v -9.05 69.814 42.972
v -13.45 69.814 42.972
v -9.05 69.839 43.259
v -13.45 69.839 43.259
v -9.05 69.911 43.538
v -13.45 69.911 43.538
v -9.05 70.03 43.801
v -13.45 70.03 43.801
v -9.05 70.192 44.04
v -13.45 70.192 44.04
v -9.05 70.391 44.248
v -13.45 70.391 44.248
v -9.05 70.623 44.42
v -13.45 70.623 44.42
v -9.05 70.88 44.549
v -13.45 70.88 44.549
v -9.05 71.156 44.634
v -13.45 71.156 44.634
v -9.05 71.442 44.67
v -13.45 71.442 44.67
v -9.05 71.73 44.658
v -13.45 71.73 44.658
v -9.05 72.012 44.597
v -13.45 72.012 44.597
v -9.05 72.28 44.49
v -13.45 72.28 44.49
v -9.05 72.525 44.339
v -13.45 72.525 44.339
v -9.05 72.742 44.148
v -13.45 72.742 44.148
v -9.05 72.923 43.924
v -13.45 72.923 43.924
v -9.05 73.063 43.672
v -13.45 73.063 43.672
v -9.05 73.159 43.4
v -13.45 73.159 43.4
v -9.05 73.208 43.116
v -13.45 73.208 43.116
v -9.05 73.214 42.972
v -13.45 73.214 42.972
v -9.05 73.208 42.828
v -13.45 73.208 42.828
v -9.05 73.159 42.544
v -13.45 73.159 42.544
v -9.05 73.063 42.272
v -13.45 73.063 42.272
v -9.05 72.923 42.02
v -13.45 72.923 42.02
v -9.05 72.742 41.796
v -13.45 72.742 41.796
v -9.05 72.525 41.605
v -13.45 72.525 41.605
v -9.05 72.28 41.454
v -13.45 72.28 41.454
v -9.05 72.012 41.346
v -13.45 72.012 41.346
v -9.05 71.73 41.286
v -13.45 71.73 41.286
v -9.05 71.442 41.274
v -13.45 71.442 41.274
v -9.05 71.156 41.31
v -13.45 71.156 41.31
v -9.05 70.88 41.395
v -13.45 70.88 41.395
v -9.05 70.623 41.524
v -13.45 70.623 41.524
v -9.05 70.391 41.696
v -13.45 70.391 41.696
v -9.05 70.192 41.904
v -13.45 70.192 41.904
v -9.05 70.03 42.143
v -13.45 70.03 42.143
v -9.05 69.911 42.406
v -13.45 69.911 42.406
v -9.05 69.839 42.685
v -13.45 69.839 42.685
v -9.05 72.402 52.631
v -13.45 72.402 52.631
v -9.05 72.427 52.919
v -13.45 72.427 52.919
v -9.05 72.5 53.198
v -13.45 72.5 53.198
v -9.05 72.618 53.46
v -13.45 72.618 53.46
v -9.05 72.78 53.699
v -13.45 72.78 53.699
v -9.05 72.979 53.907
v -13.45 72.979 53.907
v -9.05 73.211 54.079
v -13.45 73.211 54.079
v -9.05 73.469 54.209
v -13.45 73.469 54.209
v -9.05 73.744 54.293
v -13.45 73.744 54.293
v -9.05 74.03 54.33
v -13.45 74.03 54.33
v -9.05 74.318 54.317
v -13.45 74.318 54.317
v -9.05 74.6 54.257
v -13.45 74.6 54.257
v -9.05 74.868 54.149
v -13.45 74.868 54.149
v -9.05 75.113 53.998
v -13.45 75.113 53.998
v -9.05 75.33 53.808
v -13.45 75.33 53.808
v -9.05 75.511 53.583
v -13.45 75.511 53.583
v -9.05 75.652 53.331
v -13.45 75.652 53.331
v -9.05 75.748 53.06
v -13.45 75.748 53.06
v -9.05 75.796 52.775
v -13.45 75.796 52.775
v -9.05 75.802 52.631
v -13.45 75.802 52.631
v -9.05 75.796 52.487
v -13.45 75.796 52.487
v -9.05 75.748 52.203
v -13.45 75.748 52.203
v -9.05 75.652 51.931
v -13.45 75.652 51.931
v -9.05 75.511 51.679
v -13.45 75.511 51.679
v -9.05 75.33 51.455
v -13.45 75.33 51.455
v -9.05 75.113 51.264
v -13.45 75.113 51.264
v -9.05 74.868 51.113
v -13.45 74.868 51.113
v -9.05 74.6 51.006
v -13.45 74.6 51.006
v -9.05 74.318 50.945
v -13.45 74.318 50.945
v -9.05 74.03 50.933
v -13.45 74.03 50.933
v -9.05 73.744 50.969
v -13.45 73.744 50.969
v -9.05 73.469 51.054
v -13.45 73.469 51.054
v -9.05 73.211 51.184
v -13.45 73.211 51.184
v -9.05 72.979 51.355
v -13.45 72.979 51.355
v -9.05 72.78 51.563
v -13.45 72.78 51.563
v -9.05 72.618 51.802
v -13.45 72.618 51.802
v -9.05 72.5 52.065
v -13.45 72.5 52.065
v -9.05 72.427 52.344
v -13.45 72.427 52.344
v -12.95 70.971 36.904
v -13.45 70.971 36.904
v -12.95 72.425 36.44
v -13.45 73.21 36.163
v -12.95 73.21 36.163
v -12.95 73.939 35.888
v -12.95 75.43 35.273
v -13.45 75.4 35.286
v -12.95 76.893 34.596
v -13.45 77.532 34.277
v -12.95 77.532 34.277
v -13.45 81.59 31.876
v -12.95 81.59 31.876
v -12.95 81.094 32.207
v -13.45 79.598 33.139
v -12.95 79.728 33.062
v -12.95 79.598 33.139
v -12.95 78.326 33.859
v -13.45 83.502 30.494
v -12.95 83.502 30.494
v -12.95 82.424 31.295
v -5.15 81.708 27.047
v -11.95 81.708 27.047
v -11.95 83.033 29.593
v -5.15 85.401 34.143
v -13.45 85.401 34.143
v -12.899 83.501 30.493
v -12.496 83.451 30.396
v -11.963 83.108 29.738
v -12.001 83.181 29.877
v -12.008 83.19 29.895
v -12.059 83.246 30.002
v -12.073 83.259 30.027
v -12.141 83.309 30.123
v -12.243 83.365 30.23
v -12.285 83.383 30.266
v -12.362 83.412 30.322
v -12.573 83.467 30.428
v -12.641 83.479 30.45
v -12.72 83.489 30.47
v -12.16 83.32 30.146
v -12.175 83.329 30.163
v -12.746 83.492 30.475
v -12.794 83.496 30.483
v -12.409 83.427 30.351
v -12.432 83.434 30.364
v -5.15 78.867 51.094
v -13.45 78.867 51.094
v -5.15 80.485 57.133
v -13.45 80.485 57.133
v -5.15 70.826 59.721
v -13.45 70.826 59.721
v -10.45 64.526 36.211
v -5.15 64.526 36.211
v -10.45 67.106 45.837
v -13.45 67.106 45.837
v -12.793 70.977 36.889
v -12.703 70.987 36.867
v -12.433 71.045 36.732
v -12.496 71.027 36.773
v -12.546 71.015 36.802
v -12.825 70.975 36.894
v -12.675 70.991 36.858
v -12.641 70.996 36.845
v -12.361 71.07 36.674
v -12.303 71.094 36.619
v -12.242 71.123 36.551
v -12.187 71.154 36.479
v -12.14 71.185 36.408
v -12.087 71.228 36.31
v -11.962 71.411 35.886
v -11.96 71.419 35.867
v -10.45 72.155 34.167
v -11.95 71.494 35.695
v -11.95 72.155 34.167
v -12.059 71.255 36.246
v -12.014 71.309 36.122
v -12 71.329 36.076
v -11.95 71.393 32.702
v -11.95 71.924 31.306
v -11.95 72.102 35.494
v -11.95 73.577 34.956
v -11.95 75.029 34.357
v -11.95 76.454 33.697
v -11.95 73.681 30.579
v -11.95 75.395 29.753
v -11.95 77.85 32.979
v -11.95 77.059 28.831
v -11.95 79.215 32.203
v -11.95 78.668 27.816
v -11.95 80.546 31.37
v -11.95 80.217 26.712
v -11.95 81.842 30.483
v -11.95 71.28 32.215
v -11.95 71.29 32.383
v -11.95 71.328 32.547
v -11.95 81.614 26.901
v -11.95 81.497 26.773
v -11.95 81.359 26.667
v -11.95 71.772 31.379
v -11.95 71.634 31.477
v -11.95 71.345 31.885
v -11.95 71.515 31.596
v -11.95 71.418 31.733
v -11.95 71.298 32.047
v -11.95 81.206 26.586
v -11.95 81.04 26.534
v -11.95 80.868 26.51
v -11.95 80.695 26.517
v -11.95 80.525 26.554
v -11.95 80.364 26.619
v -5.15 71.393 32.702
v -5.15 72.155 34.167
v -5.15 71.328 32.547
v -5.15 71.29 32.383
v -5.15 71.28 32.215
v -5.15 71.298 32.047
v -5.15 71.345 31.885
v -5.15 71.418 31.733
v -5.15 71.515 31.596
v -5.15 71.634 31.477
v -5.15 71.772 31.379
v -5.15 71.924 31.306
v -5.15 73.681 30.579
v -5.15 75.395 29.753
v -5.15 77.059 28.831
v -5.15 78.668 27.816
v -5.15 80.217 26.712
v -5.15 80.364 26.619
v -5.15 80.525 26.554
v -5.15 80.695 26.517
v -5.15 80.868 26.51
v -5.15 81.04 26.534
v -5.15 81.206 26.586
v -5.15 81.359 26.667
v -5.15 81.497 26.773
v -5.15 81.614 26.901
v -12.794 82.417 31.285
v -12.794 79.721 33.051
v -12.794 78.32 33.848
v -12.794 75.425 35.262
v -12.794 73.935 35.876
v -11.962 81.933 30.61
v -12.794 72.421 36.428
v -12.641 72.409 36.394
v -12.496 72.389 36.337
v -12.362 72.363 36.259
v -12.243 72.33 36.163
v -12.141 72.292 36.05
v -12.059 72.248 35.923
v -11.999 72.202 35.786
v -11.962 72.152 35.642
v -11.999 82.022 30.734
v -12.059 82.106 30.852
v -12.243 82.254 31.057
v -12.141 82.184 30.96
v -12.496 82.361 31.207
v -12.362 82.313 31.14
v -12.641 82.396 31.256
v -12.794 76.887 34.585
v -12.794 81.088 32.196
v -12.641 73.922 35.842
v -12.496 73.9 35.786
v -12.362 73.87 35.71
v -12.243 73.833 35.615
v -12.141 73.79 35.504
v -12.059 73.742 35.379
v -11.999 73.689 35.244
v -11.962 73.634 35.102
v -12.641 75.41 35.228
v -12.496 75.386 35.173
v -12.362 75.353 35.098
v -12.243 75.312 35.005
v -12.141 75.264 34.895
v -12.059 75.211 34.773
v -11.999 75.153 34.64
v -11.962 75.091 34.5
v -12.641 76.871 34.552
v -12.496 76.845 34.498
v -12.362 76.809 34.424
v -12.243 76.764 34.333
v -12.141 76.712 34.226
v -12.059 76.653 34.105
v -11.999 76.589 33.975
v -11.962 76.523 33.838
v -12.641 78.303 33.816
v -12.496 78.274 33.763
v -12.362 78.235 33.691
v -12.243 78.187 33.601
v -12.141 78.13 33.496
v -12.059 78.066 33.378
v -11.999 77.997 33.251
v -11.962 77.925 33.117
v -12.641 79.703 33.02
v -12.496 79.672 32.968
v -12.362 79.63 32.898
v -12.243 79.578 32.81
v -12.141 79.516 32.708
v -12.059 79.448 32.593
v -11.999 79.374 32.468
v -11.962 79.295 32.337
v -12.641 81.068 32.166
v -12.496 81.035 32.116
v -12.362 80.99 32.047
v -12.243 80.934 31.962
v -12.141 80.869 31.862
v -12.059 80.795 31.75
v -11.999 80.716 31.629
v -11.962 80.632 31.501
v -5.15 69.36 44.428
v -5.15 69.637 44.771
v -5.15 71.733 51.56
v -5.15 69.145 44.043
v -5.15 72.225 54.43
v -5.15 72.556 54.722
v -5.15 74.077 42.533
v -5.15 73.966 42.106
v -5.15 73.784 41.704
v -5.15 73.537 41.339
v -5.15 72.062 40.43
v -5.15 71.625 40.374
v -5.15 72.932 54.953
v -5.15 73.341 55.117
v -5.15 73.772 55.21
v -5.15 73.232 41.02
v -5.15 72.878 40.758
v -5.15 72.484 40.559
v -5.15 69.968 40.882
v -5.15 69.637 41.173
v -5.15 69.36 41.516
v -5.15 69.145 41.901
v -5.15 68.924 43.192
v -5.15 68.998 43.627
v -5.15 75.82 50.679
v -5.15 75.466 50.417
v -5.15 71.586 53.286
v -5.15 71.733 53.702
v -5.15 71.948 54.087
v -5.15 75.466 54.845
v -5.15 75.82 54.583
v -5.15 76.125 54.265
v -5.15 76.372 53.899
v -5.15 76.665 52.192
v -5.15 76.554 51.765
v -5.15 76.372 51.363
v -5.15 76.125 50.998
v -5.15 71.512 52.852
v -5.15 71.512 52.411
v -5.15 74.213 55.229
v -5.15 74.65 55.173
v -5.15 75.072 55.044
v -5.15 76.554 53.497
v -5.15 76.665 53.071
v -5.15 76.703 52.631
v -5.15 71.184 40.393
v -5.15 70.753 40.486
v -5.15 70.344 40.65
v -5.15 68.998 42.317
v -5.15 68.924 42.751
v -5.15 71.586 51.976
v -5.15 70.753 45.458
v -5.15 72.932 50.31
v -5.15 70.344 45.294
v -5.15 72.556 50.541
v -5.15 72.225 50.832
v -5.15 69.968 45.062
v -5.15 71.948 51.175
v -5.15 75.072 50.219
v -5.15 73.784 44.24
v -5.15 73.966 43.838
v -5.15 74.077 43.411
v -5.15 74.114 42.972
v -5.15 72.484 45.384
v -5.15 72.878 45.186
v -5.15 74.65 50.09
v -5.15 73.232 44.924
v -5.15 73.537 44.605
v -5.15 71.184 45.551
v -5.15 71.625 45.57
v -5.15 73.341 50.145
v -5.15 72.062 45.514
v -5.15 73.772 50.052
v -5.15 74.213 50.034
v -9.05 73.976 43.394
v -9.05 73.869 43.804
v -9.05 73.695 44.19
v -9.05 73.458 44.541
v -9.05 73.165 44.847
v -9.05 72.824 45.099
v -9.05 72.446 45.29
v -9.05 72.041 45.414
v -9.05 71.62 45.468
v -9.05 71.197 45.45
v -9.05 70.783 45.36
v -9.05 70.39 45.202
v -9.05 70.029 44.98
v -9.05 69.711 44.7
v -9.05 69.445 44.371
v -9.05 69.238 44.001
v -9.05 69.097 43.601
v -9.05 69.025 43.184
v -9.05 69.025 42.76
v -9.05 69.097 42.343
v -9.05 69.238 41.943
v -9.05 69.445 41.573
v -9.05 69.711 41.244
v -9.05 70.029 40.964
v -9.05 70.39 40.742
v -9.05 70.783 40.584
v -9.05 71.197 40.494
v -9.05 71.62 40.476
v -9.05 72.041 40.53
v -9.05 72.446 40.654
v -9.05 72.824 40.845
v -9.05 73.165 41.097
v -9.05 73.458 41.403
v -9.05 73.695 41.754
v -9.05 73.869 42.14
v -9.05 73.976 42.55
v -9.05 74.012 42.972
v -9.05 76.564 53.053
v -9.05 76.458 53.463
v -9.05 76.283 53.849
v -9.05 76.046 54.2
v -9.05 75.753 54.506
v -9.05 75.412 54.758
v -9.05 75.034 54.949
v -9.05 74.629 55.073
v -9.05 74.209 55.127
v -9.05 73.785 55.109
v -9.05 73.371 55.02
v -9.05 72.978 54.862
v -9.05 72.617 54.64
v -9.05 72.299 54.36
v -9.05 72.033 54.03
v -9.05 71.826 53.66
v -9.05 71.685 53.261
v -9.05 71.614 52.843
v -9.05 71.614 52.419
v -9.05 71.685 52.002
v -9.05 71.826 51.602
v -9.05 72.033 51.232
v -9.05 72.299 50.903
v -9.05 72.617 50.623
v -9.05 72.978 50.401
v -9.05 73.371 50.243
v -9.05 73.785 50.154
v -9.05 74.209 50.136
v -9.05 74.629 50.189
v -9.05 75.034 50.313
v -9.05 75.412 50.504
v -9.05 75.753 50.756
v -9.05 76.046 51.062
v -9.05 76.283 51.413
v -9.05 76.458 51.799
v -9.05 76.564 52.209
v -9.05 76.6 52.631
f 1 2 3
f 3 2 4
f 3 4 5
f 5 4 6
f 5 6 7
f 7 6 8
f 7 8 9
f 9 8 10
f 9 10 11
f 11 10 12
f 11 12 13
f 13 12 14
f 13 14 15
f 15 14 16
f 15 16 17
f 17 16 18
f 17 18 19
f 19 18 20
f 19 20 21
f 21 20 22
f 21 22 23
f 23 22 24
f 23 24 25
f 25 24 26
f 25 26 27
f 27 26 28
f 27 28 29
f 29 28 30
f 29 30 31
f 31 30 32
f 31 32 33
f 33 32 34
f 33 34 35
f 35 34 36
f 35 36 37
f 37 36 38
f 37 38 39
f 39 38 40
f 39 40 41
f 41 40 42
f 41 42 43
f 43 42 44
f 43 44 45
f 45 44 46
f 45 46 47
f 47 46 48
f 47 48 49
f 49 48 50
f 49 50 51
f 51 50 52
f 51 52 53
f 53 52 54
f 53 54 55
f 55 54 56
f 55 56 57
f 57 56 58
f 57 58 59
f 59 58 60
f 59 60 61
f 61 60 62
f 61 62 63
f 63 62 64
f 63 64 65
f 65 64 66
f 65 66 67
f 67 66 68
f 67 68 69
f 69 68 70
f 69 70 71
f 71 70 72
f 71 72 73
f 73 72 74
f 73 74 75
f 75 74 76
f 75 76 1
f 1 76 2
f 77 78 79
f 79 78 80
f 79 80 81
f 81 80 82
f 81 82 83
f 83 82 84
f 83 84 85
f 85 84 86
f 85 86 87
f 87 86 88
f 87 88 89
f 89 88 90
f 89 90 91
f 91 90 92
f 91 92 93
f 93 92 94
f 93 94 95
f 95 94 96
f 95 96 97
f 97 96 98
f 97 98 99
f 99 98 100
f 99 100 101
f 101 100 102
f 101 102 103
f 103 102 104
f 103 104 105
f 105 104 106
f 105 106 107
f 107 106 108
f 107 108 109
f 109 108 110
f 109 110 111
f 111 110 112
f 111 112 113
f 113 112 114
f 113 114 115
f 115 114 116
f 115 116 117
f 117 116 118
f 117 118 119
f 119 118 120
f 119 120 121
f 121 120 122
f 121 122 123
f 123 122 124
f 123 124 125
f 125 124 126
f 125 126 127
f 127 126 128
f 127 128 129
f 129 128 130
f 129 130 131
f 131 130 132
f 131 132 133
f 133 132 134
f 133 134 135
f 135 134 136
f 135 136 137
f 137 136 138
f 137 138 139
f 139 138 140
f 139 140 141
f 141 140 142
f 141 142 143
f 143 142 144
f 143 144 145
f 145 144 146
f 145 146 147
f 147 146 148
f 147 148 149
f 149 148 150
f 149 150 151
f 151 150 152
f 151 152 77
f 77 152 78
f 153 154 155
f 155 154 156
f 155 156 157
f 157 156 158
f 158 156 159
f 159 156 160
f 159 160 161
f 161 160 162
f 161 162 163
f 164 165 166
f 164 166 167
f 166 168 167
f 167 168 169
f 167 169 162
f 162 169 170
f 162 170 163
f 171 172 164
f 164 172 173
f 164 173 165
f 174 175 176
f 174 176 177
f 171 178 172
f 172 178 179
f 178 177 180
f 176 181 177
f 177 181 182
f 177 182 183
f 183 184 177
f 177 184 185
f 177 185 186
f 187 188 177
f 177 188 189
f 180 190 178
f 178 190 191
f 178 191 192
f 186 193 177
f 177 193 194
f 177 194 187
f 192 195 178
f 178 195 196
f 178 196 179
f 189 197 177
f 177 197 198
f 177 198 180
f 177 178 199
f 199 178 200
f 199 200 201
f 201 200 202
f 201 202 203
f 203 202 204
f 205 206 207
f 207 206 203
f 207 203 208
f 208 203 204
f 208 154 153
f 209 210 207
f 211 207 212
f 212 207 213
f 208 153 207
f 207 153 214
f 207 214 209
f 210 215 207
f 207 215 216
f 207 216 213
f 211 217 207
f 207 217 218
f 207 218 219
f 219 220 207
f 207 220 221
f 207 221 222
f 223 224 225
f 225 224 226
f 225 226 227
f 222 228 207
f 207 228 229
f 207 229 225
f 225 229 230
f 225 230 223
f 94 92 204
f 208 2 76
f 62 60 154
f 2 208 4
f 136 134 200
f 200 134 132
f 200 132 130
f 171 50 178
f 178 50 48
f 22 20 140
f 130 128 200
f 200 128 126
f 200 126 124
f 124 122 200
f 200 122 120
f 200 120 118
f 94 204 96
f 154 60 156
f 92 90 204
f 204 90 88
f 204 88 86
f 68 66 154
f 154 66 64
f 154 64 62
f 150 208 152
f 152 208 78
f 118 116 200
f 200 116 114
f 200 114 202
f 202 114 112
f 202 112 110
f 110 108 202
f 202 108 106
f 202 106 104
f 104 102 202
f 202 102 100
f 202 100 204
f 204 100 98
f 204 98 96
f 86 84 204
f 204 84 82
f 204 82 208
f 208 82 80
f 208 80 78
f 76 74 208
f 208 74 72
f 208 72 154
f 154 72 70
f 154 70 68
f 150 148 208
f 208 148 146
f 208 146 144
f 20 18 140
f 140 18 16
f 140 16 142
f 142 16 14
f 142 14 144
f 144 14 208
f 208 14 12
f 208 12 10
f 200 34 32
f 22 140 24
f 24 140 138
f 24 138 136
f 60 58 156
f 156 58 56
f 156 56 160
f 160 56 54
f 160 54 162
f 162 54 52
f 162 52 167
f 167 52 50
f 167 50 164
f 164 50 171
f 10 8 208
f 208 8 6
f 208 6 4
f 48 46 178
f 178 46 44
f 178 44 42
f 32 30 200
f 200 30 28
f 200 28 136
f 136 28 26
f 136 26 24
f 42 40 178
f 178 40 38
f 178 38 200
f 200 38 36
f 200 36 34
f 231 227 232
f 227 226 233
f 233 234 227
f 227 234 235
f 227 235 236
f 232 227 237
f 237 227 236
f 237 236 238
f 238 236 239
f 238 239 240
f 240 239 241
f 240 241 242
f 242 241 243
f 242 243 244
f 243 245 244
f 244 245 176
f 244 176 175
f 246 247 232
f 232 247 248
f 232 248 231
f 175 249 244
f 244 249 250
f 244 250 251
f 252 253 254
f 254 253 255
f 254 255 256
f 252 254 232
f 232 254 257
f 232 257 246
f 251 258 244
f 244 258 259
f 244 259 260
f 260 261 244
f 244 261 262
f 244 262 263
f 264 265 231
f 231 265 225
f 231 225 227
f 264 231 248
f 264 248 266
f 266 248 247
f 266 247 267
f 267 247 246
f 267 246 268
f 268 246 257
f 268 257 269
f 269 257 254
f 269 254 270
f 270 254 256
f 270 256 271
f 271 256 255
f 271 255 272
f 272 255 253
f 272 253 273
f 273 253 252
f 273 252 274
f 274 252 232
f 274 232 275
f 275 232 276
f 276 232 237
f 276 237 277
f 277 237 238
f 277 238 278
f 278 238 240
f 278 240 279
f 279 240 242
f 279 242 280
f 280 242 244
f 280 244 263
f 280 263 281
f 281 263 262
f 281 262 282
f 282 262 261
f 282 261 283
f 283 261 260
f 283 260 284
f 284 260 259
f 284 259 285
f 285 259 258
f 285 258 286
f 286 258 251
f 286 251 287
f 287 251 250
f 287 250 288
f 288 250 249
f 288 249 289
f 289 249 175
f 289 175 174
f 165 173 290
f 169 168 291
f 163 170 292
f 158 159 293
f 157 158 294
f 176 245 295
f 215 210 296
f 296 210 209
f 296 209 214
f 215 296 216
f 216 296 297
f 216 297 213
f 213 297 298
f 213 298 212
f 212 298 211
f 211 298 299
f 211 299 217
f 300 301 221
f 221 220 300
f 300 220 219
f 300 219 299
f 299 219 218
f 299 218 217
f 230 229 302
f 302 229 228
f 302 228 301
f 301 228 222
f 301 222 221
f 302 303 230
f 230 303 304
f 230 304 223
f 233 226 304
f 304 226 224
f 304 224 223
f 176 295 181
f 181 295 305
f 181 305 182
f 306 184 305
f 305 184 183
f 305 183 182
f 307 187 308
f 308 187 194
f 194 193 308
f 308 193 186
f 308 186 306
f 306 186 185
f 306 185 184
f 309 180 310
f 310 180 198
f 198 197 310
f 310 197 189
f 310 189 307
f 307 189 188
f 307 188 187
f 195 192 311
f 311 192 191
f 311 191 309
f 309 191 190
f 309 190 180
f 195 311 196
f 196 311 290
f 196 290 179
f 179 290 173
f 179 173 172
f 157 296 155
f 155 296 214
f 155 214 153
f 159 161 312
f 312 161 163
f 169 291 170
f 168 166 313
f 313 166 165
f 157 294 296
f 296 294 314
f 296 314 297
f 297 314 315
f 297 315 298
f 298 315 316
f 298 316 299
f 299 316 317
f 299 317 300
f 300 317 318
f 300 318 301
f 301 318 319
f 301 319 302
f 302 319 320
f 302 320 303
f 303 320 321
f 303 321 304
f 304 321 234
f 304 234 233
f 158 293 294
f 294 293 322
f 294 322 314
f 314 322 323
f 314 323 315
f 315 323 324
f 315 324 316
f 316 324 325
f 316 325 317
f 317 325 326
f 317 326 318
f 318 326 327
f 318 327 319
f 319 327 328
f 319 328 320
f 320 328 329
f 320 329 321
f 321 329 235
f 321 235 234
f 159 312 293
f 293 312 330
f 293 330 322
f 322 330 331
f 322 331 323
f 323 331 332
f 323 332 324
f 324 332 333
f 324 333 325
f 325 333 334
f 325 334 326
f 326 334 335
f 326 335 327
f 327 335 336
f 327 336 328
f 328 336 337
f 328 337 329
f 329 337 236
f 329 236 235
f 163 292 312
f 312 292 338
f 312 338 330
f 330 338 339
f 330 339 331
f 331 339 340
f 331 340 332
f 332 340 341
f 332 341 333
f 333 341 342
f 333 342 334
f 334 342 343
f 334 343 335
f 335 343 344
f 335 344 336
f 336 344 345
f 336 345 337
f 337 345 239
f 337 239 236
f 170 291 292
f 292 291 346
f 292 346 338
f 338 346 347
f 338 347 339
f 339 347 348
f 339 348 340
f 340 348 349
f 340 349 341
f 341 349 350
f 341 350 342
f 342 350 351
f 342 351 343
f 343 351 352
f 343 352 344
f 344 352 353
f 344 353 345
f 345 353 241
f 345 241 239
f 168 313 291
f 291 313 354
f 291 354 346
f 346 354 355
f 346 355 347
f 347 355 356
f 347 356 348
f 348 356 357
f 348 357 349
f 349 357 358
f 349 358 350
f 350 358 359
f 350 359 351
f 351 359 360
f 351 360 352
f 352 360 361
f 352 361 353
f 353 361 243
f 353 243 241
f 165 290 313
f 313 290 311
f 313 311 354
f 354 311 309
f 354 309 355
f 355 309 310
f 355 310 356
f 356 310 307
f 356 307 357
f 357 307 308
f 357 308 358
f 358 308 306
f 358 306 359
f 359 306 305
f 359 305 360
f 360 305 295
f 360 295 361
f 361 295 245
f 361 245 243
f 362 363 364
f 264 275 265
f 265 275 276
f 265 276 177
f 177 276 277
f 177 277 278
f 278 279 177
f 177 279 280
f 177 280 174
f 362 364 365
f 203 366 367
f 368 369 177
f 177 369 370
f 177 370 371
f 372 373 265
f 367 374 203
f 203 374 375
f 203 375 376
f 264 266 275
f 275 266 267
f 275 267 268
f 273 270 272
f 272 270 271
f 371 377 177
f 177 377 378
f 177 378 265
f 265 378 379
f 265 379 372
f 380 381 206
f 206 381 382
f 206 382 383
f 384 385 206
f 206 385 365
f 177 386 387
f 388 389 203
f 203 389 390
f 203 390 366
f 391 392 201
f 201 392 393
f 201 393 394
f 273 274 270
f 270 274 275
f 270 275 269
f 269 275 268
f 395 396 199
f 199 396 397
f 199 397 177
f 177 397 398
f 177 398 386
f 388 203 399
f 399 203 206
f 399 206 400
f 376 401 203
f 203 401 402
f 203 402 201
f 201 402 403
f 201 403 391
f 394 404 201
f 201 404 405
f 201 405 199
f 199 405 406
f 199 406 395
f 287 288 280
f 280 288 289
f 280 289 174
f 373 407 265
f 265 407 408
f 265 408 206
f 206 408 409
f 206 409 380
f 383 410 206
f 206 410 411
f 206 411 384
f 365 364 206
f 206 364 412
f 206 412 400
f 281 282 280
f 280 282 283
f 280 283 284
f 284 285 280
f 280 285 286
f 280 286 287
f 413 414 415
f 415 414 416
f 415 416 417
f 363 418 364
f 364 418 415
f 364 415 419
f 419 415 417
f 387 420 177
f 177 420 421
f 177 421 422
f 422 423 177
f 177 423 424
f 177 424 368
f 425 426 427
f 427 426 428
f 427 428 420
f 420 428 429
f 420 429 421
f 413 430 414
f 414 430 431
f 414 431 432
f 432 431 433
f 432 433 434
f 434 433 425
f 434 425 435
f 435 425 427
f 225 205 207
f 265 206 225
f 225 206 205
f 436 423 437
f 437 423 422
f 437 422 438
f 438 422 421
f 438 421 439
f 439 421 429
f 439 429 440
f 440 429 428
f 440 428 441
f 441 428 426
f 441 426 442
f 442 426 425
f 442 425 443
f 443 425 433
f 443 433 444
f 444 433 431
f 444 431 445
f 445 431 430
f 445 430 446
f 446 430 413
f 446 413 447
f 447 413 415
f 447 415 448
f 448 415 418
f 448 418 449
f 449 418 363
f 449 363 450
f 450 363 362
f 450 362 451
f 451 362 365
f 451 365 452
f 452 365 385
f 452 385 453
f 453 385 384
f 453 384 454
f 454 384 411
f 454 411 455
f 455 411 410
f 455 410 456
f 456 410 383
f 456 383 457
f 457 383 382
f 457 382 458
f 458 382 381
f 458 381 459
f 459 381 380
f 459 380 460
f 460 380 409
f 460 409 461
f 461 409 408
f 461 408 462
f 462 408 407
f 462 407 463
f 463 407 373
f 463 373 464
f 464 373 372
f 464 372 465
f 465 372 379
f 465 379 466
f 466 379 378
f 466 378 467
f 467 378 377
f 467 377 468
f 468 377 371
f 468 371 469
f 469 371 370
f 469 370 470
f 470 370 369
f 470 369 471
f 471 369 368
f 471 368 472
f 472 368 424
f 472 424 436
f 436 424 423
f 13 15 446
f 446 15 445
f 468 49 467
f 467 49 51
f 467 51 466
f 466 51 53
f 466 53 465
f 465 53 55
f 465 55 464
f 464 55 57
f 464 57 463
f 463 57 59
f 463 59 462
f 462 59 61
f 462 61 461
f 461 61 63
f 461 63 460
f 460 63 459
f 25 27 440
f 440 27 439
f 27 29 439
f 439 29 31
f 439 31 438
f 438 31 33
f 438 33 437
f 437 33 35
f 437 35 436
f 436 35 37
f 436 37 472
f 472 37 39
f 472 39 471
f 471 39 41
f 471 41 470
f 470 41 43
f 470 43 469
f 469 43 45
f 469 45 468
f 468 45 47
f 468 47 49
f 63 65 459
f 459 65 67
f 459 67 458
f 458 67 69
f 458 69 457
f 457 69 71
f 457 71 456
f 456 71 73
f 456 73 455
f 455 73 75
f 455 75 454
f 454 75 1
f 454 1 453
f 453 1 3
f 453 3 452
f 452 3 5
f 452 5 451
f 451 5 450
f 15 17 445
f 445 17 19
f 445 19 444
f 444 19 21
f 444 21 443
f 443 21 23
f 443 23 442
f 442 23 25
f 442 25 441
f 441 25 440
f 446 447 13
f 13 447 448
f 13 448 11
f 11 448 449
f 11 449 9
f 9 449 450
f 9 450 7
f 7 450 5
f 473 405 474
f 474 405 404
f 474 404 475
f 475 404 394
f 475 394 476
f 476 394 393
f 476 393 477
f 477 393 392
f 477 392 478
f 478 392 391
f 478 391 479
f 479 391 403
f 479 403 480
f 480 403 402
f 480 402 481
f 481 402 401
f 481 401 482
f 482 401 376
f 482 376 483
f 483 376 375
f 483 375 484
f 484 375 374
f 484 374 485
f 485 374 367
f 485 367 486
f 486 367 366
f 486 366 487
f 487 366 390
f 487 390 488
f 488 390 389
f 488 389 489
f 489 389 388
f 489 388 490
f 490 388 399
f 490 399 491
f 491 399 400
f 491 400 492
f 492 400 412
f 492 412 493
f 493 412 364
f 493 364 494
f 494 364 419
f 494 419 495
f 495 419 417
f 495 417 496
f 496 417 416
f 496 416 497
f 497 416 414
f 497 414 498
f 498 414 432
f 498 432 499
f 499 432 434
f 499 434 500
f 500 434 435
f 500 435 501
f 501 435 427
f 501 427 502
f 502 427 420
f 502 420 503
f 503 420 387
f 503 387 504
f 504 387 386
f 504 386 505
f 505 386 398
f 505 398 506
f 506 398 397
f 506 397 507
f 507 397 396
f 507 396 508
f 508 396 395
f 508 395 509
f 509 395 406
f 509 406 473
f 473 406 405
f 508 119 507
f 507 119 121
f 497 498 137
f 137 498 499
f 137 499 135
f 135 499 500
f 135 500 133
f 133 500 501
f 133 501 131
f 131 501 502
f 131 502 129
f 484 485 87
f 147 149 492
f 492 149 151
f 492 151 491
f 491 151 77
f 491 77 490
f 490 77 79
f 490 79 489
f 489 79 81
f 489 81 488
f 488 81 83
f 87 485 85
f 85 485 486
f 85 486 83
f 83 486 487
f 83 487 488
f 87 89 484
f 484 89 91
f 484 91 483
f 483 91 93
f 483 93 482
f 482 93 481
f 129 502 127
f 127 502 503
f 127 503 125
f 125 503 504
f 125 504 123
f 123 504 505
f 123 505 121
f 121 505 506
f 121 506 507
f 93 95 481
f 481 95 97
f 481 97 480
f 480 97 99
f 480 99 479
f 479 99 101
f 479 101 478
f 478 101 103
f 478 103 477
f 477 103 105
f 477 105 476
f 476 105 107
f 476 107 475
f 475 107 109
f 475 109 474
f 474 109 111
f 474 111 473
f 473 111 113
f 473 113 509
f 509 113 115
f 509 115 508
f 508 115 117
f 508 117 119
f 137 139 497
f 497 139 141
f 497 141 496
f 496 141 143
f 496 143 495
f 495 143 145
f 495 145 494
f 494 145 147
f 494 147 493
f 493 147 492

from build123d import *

# Parameters (mm, degrees)
SKETCH1_R                    = 1.7
BOSS_EXTRUDE1_DEPTH          = 1.5
BOSS_EXTRUDE2_START          = 1.5
SKETCH1_3_R                  = 1.7
BOSS_EXTRUDE2_DEPTH          = 1.5
FILLET1_R                    = 1
SKETCH2_R                    = 1.7
BOSS_EXTRUDE3_DEPTH          = 5.3
SKETCH3_R                    = 2.6
CUT_EXTRUDE1_DEPTH           = 3.9
CUT_EXTRUDE1_DRAFT           = -1.5
CUT_EXTRUDE1_PROFILE_2_DEPTH = 3.9
CUT_EXTRUDE1_PROFILE_2_DRAFT = -1.5


with BuildPart() as part:
    # Sketch1 → Boss-Extrude1 (new body)
    with BuildSketch(Plane(origin=(-13.45, 0, 0), x_dir=(0, 0, -1), z_dir=(1, 0, 0))):
        with BuildLine():
            ThreePointArc((-36.90383834, 70.970720842), (-34.276657251, 77.531707495), (-30.494426781, 83.501913439))
            Line((-30.494426781, 83.501913439), (-34.143188918, 85.401338783))
            Line((-34.143188918, 85.401338783), (-51.094135774, 78.867013321))
            Line((-51.094135774, 78.867013321), (-57.13269116, 80.48503936))
            Line((-57.13269116, 80.48503936), (-59.720881611, 70.825781097))
            Line((-59.720881611, 70.825781097), (-45.836878975, 67.105573803))
            Line((-45.836878975, 67.105573803), (-36.90383834, 70.970720842))
        make_face()
        with Locations(Location((-52.631231428, 74.102495958, 0), (0, 0, 270))):
            Circle(SKETCH1_R, mode=Mode.SUBTRACT)
        with Locations(Location((-42.971973165, 71.514305507, 0), (0, 0, 270))):
            Circle(SKETCH1_R, mode=Mode.SUBTRACT)
    extrude(amount=BOSS_EXTRUDE1_DEPTH)

    # Sketch1<3> → Boss-Extrude2 (add)
    with BuildSketch(Plane(origin=(-13.45, 0, 0), x_dir=(0, 0, -1), z_dir=(1, 0, 0)).offset(BOSS_EXTRUDE2_START)):
        with BuildLine():
            Line((-34.143188918, 85.401338783), (-51.094135774, 78.867013321))
            Line((-51.094135774, 78.867013321), (-57.13269116, 80.48503936))
            Line((-57.13269116, 80.48503936), (-59.720881611, 70.825781097))
            Line((-59.720881611, 70.825781097), (-45.836878975, 67.105573803))
            Line((-45.836878975, 67.105573803), (-34.166912695, 72.154933529))
            Line((-34.166912695, 72.154933529), (-32.702433972, 71.39257416))
            ThreePointArc((-32.702433972, 71.39257416), (-31.885174228, 71.344912946), (-31.30617274, 71.923654993))
            ThreePointArc((-31.30617274, 71.923654993), (-29.303876098, 76.233694761), (-26.711829723, 80.21702631))
            ThreePointArc((-26.711829723, 80.21702631), (-26.533623916, 81.040191312), (-27.047449161, 81.707530466))
            Line((-27.047449161, 81.707530466), (-34.143188918, 85.401338783))
        make_face()
        with Locations(Location((-52.631231428, 74.102495958, 0), (0, 0, 270))):
            Circle(SKETCH1_3_R, mode=Mode.SUBTRACT)
        with Locations(Location((-42.971973165, 71.514305507, 0), (0, 0, 270))):
            Circle(SKETCH1_3_R, mode=Mode.SUBTRACT)
    extrude(amount=BOSS_EXTRUDE2_DEPTH)

    # Fillet1
    fillet1_edges = [part.edges().sort_by_distance(p)[0] for p in [
        (-11.95, 77.531707495, 34.276657251),
    ]]
    fillet(fillet1_edges, radius=FILLET1_R)

    # Sketch2 → Boss-Extrude3 (add)
    with BuildSketch(Plane(origin=(-10.45, 0, 0), x_dir=(0, 0, -1), z_dir=(1, 0, 0))):
        with BuildLine():
            Line((-34.166912695, 72.154933529), (-36.210992136, 64.526325198))
            Line((-36.210992136, 64.526325198), (-45.836878975, 67.105573803))
            Line((-45.836878975, 67.105573803), (-59.720881611, 70.825781097))
            Line((-59.720881611, 70.825781097), (-57.13269116, 80.48503936))
            Line((-57.13269116, 80.48503936), (-51.094135774, 78.867013321))
            Line((-51.094135774, 78.867013321), (-34.143188918, 85.401338783))
            Line((-34.143188918, 85.401338783), (-27.047449161, 81.707530466))
            ThreePointArc((-27.047449161, 81.707530466), (-26.533623916, 81.040191312), (-26.711829723, 80.21702631))
            ThreePointArc((-26.711829723, 80.21702631), (-29.303876098, 76.233694761), (-31.30617274, 71.923654993))
            ThreePointArc((-31.30617274, 71.923654993), (-31.885174228, 71.344912946), (-32.702433972, 71.39257416))
            Line((-32.702433972, 71.39257416), (-34.166912695, 72.154933529))
        make_face()
        with Locations(Location((-42.971973165, 71.514305507, 0), (0, 0, 270))):
            Circle(SKETCH2_R, mode=Mode.SUBTRACT)
        with Locations(Location((-52.631231428, 74.102495958, 0), (0, 0, 270))):
            Circle(SKETCH2_R, mode=Mode.SUBTRACT)
    extrude(amount=BOSS_EXTRUDE3_DEPTH)


with BuildPart() as cut_extrude1_tool:
    # Sketch3 → Cut-Extrude1 (with draft: the straight prism first)
    with BuildSketch(Plane(origin=(-5.15, 0, 0), x_dir=(0, 0, -1), z_dir=(1, 0, 0))):
        with Locations((-52.631231428, 74.102495958)):
            Circle(SKETCH3_R)
    extrude(amount=-CUT_EXTRUDE1_DEPTH)
    # Cut-Extrude1: the draft: its side faces are tilted about the plane it starts from
    cut_extrude1_sides = [cut_extrude1_tool.faces().sort_by_distance(p)[0] for p in [
        (-7.1, 74.102495958, 55.231231428),
    ]]
    draft(cut_extrude1_sides, Plane(origin=(-5.15, 0, 0), x_dir=(0, 0, -1), z_dir=(1, 0, 0)), CUT_EXTRUDE1_DRAFT)


with BuildPart() as part_1:
    add(part.part)

    # Cut-Extrude1: cut by cut_extrude1_tool
    add(cut_extrude1_tool.part, mode=Mode.SUBTRACT)


with BuildPart() as cut_extrude1_profile_2_tool:
    # Sketch3 → Cut-Extrude1 profile 2 (with draft: the straight prism first)
    with BuildSketch(Plane(origin=(-5.15, 0, 0), x_dir=(0, 0, -1), z_dir=(1, 0, 0))):
        with Locations((-42.971973165, 71.514305507)):
            Circle(SKETCH3_R)
    extrude(amount=-CUT_EXTRUDE1_PROFILE_2_DEPTH)
    # Cut-Extrude1 profile 2: the draft: its side faces are tilted about the plane it starts from
    cut_extrude1_profile_2_sides = [cut_extrude1_profile_2_tool.faces().sort_by_distance(p)[0] for p in [
        (-7.1, 71.514305507, 45.571973165),
    ]]
    draft(cut_extrude1_profile_2_sides, Plane(origin=(-5.15, 0, 0), x_dir=(0, 0, -1), z_dir=(1, 0, 0)), CUT_EXTRUDE1_PROFILE_2_DRAFT)


with BuildPart() as part_2:
    add(part_1.part)

    # Cut-Extrude1 profile 2: cut by cut_extrude1_profile_2_tool
    add(cut_extrude1_profile_2_tool.part, mode=Mode.SUBTRACT)


solid = part_2.part
